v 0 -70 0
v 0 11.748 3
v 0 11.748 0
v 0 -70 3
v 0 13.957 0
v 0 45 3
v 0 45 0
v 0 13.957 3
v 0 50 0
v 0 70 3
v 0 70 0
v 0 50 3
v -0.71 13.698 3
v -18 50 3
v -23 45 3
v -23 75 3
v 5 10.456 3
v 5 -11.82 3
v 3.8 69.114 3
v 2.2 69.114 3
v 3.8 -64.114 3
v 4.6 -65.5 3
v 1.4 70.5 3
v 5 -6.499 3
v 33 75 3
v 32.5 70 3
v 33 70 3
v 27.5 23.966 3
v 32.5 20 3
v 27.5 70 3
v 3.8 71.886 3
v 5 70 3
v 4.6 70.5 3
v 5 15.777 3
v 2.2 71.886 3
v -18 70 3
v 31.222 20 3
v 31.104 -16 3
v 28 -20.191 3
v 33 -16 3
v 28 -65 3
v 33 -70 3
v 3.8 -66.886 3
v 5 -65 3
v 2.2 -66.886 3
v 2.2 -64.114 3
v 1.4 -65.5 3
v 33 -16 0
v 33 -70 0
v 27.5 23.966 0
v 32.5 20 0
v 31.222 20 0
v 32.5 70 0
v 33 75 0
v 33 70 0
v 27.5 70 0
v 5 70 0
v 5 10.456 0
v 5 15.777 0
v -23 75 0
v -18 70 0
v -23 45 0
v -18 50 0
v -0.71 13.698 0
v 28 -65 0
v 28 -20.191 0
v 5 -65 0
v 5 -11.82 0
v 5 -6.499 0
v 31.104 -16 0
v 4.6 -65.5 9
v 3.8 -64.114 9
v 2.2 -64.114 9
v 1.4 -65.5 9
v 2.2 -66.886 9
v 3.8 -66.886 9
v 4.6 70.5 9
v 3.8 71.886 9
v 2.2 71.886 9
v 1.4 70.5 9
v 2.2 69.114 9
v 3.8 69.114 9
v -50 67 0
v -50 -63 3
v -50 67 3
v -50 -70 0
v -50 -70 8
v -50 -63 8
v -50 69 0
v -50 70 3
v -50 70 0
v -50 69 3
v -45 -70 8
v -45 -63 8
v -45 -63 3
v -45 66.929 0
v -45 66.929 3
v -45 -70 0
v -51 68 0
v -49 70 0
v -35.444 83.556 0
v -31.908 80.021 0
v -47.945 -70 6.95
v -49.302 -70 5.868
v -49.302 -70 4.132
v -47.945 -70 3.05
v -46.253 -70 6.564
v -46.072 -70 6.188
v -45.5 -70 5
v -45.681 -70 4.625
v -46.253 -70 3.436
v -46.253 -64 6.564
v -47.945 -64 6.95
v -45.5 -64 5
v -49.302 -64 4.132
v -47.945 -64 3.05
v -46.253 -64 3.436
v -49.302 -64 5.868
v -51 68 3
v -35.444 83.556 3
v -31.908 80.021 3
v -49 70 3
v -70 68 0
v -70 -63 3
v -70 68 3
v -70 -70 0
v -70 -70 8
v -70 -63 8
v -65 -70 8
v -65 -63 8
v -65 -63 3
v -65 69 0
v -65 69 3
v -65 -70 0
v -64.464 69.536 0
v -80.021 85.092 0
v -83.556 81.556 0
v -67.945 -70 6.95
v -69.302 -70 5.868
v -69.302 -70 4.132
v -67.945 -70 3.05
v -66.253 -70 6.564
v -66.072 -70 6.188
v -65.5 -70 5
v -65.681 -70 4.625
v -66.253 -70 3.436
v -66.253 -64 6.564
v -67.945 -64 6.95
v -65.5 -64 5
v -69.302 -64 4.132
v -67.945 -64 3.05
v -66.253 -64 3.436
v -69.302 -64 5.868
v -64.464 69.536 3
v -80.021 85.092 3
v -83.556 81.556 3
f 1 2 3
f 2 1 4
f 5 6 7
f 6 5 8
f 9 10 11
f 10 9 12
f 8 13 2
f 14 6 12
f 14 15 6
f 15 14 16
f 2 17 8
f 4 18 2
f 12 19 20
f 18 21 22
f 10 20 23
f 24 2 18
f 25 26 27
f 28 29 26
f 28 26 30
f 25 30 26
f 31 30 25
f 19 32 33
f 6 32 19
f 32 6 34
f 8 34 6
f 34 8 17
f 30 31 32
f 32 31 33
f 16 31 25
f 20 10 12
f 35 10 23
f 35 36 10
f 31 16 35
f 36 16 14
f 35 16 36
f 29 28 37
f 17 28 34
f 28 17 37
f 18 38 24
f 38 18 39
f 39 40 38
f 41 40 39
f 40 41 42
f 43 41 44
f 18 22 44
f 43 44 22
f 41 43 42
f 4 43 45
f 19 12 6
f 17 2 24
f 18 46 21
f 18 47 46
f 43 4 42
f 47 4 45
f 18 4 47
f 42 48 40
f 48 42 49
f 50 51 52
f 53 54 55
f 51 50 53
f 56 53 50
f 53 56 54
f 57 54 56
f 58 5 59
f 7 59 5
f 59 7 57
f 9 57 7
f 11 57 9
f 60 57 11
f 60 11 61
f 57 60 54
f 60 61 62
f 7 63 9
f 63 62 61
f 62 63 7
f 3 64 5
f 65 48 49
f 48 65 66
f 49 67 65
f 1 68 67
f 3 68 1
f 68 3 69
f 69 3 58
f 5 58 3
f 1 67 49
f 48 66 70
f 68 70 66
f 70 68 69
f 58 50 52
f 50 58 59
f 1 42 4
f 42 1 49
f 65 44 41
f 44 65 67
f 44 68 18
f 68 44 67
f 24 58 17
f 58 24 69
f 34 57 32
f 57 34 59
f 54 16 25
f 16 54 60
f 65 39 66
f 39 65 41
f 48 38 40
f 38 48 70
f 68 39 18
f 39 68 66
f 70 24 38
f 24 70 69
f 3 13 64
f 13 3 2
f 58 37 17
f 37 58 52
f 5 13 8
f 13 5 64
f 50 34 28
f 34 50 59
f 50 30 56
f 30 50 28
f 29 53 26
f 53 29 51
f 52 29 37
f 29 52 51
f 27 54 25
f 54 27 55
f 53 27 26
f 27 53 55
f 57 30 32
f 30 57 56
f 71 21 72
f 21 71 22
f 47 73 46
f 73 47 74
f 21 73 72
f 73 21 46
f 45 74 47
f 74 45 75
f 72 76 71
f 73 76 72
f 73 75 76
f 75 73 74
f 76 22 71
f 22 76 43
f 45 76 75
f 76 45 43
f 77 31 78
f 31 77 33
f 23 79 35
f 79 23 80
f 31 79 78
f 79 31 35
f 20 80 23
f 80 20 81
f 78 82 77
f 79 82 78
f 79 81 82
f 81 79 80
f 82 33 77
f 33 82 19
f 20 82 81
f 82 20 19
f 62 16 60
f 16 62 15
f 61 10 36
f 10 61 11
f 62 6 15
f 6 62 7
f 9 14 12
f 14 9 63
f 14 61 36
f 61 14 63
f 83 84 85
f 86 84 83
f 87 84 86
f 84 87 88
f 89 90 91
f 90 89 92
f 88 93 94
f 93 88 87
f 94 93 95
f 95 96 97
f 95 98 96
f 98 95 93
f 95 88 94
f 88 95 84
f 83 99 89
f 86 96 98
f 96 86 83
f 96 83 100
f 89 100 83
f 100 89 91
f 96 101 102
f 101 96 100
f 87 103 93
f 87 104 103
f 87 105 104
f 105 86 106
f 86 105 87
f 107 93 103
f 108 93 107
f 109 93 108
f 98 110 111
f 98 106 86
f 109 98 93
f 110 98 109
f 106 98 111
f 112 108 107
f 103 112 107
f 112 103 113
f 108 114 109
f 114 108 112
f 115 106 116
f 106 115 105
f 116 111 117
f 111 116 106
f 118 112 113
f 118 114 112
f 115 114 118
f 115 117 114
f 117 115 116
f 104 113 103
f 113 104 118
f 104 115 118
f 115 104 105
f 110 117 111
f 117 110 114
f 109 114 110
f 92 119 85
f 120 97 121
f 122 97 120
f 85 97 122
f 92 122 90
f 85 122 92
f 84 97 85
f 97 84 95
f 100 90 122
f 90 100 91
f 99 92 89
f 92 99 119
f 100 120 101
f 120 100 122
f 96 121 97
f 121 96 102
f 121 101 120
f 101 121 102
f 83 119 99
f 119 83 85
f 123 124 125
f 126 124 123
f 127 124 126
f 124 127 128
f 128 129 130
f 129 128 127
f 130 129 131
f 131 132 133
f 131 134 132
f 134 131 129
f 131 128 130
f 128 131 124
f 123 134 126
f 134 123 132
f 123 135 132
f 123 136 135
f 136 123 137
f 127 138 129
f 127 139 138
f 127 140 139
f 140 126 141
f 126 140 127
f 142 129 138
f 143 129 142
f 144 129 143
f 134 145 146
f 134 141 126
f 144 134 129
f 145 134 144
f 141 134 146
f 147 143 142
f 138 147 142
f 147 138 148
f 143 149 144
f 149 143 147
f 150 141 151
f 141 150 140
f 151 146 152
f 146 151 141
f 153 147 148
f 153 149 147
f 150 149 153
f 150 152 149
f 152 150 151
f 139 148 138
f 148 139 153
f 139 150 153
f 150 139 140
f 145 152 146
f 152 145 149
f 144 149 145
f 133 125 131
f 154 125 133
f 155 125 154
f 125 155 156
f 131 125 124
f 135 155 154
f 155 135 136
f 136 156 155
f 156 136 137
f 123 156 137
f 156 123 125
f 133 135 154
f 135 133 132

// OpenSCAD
translate([0, -70, 0])
    frame();

translate([-50, -70, 0]) 
    arm1();
translate([-70, -70, 0]) 
    arm2();

module frame() {
    cube([33, 5, 3]);
    cube([5, 145, 3]);
    translate([28, 0, 0])
        cube([5, 54, 3]);
    translate([0, 60, 0])
        rotate([0, 0, -20])
            cube([33, 5, 3]);
    translate([1, 79, 0])
        rotate([0, 0, 20])
            cube([33.5, 5, 3]);
    translate([27.5, 90, 0])
        cube([5, 54, 3]);
    translate([0, 140, 0])
        cube([33, 5, 3]);
    translate([3, 4.5, 0])
        cylinder(9, 1.6, 1.6);
    translate([3, 140.5, 0])
        cylinder(9, 1.6, 1.6);
    translate([-23, 140, 0])
        cube([25, 5, 3]);
    translate([-23, 115, 0])
        cube([25, 5, 3]);
    translate([-23, 115, 0])
        cube([5, 25, 3]);
}

module arm1() {
        cube([5, 140, 3]);
        difference() {
            cube([5, 7, 8]);
                rotate([90, 0, 0])
                    translate([2.5, 5, -6])
                        cylinder(25, 2, 2);
        }
        translate([-1, 138, 0])
            rotate([0, 0, -45])
                cube([5, 22, 3]);
}

module arm2() {
        cube([5, 140, 3]);
        difference() {
            cube([5, 7, 8]);
                rotate([90, 0, 0])
                    translate([2.5, 5, -6])
                        cylinder(25, 2, 2);
        }

        translate([2, 136, 0])
            rotate([0, 0, 45])
                cube([5, 22, 3]);
}
